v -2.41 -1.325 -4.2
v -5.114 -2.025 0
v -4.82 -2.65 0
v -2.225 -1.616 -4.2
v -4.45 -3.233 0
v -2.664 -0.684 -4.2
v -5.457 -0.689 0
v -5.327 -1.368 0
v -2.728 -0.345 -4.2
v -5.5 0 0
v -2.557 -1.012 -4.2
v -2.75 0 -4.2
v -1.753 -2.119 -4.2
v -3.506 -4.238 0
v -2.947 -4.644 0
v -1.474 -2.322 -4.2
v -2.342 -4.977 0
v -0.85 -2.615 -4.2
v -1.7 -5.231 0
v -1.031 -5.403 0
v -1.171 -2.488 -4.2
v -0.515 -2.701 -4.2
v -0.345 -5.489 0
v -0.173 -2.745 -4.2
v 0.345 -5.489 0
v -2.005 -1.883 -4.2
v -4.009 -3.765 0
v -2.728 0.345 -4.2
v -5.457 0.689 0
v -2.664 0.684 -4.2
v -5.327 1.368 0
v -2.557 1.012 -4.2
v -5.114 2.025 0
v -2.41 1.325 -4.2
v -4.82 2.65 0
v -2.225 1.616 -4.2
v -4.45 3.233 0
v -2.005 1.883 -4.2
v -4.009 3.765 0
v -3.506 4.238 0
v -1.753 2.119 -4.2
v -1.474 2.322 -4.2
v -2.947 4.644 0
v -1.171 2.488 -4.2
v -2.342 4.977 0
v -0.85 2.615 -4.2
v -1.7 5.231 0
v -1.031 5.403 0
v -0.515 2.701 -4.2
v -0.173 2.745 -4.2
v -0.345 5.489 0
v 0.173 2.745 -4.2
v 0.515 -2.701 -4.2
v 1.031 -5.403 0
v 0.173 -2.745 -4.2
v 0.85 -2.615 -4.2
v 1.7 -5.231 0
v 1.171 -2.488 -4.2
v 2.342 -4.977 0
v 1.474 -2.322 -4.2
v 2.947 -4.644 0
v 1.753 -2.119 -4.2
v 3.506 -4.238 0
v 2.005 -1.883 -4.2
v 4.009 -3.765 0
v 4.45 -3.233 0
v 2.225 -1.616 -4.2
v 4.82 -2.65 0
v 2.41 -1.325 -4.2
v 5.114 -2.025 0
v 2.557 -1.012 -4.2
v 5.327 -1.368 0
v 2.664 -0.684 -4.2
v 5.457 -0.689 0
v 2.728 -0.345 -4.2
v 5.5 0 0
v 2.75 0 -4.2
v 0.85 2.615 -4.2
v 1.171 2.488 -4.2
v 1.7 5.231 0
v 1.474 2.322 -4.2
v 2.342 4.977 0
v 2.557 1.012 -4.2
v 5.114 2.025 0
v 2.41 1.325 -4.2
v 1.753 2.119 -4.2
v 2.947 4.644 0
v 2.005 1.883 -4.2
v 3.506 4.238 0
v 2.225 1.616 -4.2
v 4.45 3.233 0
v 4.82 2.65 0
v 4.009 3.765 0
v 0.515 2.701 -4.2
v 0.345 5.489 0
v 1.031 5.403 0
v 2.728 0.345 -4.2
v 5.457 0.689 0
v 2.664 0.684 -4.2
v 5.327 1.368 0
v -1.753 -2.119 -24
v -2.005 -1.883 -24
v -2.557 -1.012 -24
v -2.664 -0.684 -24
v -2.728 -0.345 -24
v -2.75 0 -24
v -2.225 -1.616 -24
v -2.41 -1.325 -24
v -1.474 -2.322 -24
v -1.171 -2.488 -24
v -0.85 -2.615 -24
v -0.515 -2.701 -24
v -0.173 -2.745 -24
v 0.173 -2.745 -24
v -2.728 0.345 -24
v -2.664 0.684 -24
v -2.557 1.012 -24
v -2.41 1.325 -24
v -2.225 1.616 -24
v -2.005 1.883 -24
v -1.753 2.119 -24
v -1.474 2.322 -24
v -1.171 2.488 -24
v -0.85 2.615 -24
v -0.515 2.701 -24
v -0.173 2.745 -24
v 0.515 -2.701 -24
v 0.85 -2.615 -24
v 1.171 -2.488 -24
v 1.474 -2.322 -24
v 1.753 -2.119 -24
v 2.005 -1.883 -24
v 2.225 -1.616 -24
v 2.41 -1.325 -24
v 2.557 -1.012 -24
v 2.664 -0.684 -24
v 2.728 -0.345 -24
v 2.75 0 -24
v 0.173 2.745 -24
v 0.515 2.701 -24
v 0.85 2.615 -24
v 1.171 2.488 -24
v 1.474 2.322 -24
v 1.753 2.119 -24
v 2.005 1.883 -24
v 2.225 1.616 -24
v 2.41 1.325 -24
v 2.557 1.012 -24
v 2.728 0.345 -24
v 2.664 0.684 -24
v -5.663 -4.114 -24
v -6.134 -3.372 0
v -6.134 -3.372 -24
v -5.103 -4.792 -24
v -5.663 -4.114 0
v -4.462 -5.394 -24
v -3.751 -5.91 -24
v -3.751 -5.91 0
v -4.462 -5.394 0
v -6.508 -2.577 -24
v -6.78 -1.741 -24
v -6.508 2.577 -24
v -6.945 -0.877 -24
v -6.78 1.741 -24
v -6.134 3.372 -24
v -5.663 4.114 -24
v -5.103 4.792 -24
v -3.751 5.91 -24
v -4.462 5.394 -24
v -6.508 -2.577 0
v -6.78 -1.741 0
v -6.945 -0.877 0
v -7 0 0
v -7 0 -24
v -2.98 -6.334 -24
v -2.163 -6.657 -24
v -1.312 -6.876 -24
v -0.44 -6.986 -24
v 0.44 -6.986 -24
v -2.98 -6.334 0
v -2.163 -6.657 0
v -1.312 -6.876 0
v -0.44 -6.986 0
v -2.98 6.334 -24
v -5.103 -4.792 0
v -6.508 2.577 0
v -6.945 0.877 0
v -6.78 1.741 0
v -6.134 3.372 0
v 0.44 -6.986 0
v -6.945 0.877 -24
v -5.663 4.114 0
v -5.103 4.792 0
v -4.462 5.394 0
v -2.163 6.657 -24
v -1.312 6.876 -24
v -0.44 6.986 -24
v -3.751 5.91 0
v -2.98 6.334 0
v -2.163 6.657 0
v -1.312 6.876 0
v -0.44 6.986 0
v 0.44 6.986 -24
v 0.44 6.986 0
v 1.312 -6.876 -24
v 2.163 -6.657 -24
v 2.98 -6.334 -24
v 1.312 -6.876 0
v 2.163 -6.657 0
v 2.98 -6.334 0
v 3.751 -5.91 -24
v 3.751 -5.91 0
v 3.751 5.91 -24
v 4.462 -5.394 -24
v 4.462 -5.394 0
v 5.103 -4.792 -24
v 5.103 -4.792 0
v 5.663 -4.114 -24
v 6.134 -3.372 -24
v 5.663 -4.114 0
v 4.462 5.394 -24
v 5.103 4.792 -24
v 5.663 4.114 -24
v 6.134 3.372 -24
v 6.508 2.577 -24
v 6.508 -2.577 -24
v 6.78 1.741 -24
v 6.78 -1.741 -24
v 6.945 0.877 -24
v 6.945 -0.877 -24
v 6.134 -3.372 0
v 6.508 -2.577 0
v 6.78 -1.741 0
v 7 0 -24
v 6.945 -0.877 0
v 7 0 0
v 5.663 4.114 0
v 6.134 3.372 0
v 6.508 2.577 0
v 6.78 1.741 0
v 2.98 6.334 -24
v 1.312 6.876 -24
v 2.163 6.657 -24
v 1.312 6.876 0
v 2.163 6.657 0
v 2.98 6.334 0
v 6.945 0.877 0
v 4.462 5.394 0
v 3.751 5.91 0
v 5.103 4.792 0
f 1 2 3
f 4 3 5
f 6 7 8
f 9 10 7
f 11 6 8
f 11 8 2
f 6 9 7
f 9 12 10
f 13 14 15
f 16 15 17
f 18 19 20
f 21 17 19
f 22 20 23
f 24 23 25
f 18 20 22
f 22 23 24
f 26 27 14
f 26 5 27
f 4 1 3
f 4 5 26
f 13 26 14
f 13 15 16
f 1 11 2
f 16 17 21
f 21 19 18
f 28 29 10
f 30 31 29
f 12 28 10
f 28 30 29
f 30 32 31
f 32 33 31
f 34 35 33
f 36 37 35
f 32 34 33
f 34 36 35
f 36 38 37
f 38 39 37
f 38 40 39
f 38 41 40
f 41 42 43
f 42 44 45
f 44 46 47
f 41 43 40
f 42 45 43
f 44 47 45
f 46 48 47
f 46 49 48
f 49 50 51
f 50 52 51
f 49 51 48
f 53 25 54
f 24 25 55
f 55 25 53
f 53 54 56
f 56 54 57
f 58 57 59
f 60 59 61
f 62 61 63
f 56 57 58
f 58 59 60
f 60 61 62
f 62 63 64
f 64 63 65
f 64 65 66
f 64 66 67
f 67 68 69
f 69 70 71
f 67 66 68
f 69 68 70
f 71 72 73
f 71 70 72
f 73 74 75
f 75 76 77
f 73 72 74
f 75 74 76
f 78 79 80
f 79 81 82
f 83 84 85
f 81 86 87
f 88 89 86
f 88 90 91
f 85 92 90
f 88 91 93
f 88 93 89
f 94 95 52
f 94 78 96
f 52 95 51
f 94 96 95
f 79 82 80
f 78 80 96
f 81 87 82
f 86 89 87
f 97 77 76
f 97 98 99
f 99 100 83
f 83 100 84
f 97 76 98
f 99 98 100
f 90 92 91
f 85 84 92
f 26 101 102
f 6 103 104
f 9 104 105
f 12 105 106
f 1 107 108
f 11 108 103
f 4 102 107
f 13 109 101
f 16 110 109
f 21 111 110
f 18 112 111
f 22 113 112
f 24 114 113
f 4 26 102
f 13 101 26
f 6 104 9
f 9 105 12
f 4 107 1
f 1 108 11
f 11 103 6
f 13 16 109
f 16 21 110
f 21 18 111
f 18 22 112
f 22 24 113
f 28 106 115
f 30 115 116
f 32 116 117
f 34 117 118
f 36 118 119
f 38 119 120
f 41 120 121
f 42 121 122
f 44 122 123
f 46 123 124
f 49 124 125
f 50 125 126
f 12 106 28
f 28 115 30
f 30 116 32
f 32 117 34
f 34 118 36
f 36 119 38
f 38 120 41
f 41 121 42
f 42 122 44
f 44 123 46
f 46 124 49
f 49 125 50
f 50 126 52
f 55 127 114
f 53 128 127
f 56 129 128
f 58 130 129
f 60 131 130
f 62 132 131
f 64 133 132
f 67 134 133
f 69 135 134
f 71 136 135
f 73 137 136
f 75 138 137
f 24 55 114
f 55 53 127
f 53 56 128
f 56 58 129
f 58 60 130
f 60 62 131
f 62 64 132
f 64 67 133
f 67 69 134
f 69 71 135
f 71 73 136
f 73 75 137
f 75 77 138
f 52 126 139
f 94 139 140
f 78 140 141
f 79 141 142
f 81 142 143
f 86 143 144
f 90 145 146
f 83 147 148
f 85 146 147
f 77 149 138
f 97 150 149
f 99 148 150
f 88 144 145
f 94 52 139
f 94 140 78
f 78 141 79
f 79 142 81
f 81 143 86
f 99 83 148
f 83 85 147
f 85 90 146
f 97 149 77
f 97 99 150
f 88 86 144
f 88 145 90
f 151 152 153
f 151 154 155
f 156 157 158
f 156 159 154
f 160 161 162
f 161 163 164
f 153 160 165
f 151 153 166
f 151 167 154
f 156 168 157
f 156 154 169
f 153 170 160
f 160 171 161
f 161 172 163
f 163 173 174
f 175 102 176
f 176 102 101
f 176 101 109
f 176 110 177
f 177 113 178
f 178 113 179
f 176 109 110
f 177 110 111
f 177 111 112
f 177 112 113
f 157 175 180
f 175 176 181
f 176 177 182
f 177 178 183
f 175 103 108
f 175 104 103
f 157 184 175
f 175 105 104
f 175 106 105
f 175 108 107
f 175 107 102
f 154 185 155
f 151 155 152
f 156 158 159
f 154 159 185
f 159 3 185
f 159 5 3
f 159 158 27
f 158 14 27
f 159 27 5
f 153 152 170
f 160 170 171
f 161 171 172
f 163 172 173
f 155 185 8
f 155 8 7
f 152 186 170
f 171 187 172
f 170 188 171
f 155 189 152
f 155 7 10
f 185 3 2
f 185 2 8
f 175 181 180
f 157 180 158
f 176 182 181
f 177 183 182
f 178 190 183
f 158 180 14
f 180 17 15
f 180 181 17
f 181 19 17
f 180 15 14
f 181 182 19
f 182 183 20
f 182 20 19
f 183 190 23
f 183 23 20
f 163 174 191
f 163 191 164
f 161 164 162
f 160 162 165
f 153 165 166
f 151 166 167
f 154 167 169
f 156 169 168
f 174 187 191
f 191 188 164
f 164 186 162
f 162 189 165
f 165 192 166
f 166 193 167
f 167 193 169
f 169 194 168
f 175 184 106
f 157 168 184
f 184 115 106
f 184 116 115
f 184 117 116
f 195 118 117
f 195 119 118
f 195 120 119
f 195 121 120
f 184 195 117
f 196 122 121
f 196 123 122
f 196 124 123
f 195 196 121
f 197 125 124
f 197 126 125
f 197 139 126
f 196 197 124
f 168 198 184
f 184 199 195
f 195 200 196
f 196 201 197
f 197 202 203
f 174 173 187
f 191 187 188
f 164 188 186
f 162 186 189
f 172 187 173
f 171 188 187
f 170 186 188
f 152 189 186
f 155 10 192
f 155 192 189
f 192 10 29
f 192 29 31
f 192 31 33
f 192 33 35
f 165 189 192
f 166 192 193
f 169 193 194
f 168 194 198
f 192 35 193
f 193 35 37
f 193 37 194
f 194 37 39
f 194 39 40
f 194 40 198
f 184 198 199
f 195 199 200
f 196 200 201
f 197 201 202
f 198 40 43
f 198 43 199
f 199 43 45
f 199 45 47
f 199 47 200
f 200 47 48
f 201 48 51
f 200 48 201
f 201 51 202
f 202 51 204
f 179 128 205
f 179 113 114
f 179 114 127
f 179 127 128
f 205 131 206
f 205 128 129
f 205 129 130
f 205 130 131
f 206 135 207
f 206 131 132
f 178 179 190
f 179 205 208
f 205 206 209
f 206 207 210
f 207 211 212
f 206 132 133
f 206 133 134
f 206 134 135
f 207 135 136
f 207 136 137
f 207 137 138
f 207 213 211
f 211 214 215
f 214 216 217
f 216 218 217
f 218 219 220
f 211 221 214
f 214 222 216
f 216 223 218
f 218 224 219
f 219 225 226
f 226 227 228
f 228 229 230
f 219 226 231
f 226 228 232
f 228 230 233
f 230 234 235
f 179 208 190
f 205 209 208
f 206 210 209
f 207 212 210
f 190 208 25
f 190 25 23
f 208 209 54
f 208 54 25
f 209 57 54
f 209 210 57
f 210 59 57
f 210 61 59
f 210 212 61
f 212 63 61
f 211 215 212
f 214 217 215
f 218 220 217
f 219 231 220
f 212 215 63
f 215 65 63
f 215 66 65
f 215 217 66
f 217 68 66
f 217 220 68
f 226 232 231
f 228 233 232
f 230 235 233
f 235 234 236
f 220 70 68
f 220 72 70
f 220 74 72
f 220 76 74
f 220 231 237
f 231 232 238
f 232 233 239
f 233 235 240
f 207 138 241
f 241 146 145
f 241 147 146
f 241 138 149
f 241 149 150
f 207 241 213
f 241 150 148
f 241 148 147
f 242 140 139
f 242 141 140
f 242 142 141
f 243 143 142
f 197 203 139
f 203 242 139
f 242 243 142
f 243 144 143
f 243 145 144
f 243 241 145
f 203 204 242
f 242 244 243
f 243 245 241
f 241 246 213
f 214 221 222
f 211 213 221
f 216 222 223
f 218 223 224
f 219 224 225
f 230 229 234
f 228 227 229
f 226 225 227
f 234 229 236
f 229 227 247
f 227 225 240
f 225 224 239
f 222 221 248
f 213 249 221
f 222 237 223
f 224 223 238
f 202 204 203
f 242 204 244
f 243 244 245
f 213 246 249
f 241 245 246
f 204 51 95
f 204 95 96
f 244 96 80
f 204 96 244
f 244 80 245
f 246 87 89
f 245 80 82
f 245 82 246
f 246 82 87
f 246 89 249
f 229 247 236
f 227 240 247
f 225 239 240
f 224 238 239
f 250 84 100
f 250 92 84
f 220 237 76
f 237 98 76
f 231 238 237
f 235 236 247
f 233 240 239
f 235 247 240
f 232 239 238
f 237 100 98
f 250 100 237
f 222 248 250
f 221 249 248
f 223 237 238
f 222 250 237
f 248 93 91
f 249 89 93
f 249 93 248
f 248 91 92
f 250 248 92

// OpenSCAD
$fn = 50;

difference() {
	union() {
		translate(v = [0, 0, -24.0]) {
			cylinder(h = 24, r = 7.0);
		}
	}
	union() {
		translate(v = [0, 0, 0]) {
			rotate(a = [0, 0, 0]) {
				difference() {
					union() {
						translate(v = [0, 0, -27.0]) {
							cylinder(h = 27, r = 2.25);
						}
						translate(v = [0, 0, -4.2]) {
							cylinder(h = 4.2, r1 = 2.75, r2 = 5.5);
						}
						translate(v = [0, 0, -27.0]) {
							cylinder(h = 27, r = 2.75);
						}
						translate(v = [0, 0, -27.0]) {
							cylinder(h = 27, r = 2.25);
						}
					}
					union();
				}
			}
		}
	}
}
